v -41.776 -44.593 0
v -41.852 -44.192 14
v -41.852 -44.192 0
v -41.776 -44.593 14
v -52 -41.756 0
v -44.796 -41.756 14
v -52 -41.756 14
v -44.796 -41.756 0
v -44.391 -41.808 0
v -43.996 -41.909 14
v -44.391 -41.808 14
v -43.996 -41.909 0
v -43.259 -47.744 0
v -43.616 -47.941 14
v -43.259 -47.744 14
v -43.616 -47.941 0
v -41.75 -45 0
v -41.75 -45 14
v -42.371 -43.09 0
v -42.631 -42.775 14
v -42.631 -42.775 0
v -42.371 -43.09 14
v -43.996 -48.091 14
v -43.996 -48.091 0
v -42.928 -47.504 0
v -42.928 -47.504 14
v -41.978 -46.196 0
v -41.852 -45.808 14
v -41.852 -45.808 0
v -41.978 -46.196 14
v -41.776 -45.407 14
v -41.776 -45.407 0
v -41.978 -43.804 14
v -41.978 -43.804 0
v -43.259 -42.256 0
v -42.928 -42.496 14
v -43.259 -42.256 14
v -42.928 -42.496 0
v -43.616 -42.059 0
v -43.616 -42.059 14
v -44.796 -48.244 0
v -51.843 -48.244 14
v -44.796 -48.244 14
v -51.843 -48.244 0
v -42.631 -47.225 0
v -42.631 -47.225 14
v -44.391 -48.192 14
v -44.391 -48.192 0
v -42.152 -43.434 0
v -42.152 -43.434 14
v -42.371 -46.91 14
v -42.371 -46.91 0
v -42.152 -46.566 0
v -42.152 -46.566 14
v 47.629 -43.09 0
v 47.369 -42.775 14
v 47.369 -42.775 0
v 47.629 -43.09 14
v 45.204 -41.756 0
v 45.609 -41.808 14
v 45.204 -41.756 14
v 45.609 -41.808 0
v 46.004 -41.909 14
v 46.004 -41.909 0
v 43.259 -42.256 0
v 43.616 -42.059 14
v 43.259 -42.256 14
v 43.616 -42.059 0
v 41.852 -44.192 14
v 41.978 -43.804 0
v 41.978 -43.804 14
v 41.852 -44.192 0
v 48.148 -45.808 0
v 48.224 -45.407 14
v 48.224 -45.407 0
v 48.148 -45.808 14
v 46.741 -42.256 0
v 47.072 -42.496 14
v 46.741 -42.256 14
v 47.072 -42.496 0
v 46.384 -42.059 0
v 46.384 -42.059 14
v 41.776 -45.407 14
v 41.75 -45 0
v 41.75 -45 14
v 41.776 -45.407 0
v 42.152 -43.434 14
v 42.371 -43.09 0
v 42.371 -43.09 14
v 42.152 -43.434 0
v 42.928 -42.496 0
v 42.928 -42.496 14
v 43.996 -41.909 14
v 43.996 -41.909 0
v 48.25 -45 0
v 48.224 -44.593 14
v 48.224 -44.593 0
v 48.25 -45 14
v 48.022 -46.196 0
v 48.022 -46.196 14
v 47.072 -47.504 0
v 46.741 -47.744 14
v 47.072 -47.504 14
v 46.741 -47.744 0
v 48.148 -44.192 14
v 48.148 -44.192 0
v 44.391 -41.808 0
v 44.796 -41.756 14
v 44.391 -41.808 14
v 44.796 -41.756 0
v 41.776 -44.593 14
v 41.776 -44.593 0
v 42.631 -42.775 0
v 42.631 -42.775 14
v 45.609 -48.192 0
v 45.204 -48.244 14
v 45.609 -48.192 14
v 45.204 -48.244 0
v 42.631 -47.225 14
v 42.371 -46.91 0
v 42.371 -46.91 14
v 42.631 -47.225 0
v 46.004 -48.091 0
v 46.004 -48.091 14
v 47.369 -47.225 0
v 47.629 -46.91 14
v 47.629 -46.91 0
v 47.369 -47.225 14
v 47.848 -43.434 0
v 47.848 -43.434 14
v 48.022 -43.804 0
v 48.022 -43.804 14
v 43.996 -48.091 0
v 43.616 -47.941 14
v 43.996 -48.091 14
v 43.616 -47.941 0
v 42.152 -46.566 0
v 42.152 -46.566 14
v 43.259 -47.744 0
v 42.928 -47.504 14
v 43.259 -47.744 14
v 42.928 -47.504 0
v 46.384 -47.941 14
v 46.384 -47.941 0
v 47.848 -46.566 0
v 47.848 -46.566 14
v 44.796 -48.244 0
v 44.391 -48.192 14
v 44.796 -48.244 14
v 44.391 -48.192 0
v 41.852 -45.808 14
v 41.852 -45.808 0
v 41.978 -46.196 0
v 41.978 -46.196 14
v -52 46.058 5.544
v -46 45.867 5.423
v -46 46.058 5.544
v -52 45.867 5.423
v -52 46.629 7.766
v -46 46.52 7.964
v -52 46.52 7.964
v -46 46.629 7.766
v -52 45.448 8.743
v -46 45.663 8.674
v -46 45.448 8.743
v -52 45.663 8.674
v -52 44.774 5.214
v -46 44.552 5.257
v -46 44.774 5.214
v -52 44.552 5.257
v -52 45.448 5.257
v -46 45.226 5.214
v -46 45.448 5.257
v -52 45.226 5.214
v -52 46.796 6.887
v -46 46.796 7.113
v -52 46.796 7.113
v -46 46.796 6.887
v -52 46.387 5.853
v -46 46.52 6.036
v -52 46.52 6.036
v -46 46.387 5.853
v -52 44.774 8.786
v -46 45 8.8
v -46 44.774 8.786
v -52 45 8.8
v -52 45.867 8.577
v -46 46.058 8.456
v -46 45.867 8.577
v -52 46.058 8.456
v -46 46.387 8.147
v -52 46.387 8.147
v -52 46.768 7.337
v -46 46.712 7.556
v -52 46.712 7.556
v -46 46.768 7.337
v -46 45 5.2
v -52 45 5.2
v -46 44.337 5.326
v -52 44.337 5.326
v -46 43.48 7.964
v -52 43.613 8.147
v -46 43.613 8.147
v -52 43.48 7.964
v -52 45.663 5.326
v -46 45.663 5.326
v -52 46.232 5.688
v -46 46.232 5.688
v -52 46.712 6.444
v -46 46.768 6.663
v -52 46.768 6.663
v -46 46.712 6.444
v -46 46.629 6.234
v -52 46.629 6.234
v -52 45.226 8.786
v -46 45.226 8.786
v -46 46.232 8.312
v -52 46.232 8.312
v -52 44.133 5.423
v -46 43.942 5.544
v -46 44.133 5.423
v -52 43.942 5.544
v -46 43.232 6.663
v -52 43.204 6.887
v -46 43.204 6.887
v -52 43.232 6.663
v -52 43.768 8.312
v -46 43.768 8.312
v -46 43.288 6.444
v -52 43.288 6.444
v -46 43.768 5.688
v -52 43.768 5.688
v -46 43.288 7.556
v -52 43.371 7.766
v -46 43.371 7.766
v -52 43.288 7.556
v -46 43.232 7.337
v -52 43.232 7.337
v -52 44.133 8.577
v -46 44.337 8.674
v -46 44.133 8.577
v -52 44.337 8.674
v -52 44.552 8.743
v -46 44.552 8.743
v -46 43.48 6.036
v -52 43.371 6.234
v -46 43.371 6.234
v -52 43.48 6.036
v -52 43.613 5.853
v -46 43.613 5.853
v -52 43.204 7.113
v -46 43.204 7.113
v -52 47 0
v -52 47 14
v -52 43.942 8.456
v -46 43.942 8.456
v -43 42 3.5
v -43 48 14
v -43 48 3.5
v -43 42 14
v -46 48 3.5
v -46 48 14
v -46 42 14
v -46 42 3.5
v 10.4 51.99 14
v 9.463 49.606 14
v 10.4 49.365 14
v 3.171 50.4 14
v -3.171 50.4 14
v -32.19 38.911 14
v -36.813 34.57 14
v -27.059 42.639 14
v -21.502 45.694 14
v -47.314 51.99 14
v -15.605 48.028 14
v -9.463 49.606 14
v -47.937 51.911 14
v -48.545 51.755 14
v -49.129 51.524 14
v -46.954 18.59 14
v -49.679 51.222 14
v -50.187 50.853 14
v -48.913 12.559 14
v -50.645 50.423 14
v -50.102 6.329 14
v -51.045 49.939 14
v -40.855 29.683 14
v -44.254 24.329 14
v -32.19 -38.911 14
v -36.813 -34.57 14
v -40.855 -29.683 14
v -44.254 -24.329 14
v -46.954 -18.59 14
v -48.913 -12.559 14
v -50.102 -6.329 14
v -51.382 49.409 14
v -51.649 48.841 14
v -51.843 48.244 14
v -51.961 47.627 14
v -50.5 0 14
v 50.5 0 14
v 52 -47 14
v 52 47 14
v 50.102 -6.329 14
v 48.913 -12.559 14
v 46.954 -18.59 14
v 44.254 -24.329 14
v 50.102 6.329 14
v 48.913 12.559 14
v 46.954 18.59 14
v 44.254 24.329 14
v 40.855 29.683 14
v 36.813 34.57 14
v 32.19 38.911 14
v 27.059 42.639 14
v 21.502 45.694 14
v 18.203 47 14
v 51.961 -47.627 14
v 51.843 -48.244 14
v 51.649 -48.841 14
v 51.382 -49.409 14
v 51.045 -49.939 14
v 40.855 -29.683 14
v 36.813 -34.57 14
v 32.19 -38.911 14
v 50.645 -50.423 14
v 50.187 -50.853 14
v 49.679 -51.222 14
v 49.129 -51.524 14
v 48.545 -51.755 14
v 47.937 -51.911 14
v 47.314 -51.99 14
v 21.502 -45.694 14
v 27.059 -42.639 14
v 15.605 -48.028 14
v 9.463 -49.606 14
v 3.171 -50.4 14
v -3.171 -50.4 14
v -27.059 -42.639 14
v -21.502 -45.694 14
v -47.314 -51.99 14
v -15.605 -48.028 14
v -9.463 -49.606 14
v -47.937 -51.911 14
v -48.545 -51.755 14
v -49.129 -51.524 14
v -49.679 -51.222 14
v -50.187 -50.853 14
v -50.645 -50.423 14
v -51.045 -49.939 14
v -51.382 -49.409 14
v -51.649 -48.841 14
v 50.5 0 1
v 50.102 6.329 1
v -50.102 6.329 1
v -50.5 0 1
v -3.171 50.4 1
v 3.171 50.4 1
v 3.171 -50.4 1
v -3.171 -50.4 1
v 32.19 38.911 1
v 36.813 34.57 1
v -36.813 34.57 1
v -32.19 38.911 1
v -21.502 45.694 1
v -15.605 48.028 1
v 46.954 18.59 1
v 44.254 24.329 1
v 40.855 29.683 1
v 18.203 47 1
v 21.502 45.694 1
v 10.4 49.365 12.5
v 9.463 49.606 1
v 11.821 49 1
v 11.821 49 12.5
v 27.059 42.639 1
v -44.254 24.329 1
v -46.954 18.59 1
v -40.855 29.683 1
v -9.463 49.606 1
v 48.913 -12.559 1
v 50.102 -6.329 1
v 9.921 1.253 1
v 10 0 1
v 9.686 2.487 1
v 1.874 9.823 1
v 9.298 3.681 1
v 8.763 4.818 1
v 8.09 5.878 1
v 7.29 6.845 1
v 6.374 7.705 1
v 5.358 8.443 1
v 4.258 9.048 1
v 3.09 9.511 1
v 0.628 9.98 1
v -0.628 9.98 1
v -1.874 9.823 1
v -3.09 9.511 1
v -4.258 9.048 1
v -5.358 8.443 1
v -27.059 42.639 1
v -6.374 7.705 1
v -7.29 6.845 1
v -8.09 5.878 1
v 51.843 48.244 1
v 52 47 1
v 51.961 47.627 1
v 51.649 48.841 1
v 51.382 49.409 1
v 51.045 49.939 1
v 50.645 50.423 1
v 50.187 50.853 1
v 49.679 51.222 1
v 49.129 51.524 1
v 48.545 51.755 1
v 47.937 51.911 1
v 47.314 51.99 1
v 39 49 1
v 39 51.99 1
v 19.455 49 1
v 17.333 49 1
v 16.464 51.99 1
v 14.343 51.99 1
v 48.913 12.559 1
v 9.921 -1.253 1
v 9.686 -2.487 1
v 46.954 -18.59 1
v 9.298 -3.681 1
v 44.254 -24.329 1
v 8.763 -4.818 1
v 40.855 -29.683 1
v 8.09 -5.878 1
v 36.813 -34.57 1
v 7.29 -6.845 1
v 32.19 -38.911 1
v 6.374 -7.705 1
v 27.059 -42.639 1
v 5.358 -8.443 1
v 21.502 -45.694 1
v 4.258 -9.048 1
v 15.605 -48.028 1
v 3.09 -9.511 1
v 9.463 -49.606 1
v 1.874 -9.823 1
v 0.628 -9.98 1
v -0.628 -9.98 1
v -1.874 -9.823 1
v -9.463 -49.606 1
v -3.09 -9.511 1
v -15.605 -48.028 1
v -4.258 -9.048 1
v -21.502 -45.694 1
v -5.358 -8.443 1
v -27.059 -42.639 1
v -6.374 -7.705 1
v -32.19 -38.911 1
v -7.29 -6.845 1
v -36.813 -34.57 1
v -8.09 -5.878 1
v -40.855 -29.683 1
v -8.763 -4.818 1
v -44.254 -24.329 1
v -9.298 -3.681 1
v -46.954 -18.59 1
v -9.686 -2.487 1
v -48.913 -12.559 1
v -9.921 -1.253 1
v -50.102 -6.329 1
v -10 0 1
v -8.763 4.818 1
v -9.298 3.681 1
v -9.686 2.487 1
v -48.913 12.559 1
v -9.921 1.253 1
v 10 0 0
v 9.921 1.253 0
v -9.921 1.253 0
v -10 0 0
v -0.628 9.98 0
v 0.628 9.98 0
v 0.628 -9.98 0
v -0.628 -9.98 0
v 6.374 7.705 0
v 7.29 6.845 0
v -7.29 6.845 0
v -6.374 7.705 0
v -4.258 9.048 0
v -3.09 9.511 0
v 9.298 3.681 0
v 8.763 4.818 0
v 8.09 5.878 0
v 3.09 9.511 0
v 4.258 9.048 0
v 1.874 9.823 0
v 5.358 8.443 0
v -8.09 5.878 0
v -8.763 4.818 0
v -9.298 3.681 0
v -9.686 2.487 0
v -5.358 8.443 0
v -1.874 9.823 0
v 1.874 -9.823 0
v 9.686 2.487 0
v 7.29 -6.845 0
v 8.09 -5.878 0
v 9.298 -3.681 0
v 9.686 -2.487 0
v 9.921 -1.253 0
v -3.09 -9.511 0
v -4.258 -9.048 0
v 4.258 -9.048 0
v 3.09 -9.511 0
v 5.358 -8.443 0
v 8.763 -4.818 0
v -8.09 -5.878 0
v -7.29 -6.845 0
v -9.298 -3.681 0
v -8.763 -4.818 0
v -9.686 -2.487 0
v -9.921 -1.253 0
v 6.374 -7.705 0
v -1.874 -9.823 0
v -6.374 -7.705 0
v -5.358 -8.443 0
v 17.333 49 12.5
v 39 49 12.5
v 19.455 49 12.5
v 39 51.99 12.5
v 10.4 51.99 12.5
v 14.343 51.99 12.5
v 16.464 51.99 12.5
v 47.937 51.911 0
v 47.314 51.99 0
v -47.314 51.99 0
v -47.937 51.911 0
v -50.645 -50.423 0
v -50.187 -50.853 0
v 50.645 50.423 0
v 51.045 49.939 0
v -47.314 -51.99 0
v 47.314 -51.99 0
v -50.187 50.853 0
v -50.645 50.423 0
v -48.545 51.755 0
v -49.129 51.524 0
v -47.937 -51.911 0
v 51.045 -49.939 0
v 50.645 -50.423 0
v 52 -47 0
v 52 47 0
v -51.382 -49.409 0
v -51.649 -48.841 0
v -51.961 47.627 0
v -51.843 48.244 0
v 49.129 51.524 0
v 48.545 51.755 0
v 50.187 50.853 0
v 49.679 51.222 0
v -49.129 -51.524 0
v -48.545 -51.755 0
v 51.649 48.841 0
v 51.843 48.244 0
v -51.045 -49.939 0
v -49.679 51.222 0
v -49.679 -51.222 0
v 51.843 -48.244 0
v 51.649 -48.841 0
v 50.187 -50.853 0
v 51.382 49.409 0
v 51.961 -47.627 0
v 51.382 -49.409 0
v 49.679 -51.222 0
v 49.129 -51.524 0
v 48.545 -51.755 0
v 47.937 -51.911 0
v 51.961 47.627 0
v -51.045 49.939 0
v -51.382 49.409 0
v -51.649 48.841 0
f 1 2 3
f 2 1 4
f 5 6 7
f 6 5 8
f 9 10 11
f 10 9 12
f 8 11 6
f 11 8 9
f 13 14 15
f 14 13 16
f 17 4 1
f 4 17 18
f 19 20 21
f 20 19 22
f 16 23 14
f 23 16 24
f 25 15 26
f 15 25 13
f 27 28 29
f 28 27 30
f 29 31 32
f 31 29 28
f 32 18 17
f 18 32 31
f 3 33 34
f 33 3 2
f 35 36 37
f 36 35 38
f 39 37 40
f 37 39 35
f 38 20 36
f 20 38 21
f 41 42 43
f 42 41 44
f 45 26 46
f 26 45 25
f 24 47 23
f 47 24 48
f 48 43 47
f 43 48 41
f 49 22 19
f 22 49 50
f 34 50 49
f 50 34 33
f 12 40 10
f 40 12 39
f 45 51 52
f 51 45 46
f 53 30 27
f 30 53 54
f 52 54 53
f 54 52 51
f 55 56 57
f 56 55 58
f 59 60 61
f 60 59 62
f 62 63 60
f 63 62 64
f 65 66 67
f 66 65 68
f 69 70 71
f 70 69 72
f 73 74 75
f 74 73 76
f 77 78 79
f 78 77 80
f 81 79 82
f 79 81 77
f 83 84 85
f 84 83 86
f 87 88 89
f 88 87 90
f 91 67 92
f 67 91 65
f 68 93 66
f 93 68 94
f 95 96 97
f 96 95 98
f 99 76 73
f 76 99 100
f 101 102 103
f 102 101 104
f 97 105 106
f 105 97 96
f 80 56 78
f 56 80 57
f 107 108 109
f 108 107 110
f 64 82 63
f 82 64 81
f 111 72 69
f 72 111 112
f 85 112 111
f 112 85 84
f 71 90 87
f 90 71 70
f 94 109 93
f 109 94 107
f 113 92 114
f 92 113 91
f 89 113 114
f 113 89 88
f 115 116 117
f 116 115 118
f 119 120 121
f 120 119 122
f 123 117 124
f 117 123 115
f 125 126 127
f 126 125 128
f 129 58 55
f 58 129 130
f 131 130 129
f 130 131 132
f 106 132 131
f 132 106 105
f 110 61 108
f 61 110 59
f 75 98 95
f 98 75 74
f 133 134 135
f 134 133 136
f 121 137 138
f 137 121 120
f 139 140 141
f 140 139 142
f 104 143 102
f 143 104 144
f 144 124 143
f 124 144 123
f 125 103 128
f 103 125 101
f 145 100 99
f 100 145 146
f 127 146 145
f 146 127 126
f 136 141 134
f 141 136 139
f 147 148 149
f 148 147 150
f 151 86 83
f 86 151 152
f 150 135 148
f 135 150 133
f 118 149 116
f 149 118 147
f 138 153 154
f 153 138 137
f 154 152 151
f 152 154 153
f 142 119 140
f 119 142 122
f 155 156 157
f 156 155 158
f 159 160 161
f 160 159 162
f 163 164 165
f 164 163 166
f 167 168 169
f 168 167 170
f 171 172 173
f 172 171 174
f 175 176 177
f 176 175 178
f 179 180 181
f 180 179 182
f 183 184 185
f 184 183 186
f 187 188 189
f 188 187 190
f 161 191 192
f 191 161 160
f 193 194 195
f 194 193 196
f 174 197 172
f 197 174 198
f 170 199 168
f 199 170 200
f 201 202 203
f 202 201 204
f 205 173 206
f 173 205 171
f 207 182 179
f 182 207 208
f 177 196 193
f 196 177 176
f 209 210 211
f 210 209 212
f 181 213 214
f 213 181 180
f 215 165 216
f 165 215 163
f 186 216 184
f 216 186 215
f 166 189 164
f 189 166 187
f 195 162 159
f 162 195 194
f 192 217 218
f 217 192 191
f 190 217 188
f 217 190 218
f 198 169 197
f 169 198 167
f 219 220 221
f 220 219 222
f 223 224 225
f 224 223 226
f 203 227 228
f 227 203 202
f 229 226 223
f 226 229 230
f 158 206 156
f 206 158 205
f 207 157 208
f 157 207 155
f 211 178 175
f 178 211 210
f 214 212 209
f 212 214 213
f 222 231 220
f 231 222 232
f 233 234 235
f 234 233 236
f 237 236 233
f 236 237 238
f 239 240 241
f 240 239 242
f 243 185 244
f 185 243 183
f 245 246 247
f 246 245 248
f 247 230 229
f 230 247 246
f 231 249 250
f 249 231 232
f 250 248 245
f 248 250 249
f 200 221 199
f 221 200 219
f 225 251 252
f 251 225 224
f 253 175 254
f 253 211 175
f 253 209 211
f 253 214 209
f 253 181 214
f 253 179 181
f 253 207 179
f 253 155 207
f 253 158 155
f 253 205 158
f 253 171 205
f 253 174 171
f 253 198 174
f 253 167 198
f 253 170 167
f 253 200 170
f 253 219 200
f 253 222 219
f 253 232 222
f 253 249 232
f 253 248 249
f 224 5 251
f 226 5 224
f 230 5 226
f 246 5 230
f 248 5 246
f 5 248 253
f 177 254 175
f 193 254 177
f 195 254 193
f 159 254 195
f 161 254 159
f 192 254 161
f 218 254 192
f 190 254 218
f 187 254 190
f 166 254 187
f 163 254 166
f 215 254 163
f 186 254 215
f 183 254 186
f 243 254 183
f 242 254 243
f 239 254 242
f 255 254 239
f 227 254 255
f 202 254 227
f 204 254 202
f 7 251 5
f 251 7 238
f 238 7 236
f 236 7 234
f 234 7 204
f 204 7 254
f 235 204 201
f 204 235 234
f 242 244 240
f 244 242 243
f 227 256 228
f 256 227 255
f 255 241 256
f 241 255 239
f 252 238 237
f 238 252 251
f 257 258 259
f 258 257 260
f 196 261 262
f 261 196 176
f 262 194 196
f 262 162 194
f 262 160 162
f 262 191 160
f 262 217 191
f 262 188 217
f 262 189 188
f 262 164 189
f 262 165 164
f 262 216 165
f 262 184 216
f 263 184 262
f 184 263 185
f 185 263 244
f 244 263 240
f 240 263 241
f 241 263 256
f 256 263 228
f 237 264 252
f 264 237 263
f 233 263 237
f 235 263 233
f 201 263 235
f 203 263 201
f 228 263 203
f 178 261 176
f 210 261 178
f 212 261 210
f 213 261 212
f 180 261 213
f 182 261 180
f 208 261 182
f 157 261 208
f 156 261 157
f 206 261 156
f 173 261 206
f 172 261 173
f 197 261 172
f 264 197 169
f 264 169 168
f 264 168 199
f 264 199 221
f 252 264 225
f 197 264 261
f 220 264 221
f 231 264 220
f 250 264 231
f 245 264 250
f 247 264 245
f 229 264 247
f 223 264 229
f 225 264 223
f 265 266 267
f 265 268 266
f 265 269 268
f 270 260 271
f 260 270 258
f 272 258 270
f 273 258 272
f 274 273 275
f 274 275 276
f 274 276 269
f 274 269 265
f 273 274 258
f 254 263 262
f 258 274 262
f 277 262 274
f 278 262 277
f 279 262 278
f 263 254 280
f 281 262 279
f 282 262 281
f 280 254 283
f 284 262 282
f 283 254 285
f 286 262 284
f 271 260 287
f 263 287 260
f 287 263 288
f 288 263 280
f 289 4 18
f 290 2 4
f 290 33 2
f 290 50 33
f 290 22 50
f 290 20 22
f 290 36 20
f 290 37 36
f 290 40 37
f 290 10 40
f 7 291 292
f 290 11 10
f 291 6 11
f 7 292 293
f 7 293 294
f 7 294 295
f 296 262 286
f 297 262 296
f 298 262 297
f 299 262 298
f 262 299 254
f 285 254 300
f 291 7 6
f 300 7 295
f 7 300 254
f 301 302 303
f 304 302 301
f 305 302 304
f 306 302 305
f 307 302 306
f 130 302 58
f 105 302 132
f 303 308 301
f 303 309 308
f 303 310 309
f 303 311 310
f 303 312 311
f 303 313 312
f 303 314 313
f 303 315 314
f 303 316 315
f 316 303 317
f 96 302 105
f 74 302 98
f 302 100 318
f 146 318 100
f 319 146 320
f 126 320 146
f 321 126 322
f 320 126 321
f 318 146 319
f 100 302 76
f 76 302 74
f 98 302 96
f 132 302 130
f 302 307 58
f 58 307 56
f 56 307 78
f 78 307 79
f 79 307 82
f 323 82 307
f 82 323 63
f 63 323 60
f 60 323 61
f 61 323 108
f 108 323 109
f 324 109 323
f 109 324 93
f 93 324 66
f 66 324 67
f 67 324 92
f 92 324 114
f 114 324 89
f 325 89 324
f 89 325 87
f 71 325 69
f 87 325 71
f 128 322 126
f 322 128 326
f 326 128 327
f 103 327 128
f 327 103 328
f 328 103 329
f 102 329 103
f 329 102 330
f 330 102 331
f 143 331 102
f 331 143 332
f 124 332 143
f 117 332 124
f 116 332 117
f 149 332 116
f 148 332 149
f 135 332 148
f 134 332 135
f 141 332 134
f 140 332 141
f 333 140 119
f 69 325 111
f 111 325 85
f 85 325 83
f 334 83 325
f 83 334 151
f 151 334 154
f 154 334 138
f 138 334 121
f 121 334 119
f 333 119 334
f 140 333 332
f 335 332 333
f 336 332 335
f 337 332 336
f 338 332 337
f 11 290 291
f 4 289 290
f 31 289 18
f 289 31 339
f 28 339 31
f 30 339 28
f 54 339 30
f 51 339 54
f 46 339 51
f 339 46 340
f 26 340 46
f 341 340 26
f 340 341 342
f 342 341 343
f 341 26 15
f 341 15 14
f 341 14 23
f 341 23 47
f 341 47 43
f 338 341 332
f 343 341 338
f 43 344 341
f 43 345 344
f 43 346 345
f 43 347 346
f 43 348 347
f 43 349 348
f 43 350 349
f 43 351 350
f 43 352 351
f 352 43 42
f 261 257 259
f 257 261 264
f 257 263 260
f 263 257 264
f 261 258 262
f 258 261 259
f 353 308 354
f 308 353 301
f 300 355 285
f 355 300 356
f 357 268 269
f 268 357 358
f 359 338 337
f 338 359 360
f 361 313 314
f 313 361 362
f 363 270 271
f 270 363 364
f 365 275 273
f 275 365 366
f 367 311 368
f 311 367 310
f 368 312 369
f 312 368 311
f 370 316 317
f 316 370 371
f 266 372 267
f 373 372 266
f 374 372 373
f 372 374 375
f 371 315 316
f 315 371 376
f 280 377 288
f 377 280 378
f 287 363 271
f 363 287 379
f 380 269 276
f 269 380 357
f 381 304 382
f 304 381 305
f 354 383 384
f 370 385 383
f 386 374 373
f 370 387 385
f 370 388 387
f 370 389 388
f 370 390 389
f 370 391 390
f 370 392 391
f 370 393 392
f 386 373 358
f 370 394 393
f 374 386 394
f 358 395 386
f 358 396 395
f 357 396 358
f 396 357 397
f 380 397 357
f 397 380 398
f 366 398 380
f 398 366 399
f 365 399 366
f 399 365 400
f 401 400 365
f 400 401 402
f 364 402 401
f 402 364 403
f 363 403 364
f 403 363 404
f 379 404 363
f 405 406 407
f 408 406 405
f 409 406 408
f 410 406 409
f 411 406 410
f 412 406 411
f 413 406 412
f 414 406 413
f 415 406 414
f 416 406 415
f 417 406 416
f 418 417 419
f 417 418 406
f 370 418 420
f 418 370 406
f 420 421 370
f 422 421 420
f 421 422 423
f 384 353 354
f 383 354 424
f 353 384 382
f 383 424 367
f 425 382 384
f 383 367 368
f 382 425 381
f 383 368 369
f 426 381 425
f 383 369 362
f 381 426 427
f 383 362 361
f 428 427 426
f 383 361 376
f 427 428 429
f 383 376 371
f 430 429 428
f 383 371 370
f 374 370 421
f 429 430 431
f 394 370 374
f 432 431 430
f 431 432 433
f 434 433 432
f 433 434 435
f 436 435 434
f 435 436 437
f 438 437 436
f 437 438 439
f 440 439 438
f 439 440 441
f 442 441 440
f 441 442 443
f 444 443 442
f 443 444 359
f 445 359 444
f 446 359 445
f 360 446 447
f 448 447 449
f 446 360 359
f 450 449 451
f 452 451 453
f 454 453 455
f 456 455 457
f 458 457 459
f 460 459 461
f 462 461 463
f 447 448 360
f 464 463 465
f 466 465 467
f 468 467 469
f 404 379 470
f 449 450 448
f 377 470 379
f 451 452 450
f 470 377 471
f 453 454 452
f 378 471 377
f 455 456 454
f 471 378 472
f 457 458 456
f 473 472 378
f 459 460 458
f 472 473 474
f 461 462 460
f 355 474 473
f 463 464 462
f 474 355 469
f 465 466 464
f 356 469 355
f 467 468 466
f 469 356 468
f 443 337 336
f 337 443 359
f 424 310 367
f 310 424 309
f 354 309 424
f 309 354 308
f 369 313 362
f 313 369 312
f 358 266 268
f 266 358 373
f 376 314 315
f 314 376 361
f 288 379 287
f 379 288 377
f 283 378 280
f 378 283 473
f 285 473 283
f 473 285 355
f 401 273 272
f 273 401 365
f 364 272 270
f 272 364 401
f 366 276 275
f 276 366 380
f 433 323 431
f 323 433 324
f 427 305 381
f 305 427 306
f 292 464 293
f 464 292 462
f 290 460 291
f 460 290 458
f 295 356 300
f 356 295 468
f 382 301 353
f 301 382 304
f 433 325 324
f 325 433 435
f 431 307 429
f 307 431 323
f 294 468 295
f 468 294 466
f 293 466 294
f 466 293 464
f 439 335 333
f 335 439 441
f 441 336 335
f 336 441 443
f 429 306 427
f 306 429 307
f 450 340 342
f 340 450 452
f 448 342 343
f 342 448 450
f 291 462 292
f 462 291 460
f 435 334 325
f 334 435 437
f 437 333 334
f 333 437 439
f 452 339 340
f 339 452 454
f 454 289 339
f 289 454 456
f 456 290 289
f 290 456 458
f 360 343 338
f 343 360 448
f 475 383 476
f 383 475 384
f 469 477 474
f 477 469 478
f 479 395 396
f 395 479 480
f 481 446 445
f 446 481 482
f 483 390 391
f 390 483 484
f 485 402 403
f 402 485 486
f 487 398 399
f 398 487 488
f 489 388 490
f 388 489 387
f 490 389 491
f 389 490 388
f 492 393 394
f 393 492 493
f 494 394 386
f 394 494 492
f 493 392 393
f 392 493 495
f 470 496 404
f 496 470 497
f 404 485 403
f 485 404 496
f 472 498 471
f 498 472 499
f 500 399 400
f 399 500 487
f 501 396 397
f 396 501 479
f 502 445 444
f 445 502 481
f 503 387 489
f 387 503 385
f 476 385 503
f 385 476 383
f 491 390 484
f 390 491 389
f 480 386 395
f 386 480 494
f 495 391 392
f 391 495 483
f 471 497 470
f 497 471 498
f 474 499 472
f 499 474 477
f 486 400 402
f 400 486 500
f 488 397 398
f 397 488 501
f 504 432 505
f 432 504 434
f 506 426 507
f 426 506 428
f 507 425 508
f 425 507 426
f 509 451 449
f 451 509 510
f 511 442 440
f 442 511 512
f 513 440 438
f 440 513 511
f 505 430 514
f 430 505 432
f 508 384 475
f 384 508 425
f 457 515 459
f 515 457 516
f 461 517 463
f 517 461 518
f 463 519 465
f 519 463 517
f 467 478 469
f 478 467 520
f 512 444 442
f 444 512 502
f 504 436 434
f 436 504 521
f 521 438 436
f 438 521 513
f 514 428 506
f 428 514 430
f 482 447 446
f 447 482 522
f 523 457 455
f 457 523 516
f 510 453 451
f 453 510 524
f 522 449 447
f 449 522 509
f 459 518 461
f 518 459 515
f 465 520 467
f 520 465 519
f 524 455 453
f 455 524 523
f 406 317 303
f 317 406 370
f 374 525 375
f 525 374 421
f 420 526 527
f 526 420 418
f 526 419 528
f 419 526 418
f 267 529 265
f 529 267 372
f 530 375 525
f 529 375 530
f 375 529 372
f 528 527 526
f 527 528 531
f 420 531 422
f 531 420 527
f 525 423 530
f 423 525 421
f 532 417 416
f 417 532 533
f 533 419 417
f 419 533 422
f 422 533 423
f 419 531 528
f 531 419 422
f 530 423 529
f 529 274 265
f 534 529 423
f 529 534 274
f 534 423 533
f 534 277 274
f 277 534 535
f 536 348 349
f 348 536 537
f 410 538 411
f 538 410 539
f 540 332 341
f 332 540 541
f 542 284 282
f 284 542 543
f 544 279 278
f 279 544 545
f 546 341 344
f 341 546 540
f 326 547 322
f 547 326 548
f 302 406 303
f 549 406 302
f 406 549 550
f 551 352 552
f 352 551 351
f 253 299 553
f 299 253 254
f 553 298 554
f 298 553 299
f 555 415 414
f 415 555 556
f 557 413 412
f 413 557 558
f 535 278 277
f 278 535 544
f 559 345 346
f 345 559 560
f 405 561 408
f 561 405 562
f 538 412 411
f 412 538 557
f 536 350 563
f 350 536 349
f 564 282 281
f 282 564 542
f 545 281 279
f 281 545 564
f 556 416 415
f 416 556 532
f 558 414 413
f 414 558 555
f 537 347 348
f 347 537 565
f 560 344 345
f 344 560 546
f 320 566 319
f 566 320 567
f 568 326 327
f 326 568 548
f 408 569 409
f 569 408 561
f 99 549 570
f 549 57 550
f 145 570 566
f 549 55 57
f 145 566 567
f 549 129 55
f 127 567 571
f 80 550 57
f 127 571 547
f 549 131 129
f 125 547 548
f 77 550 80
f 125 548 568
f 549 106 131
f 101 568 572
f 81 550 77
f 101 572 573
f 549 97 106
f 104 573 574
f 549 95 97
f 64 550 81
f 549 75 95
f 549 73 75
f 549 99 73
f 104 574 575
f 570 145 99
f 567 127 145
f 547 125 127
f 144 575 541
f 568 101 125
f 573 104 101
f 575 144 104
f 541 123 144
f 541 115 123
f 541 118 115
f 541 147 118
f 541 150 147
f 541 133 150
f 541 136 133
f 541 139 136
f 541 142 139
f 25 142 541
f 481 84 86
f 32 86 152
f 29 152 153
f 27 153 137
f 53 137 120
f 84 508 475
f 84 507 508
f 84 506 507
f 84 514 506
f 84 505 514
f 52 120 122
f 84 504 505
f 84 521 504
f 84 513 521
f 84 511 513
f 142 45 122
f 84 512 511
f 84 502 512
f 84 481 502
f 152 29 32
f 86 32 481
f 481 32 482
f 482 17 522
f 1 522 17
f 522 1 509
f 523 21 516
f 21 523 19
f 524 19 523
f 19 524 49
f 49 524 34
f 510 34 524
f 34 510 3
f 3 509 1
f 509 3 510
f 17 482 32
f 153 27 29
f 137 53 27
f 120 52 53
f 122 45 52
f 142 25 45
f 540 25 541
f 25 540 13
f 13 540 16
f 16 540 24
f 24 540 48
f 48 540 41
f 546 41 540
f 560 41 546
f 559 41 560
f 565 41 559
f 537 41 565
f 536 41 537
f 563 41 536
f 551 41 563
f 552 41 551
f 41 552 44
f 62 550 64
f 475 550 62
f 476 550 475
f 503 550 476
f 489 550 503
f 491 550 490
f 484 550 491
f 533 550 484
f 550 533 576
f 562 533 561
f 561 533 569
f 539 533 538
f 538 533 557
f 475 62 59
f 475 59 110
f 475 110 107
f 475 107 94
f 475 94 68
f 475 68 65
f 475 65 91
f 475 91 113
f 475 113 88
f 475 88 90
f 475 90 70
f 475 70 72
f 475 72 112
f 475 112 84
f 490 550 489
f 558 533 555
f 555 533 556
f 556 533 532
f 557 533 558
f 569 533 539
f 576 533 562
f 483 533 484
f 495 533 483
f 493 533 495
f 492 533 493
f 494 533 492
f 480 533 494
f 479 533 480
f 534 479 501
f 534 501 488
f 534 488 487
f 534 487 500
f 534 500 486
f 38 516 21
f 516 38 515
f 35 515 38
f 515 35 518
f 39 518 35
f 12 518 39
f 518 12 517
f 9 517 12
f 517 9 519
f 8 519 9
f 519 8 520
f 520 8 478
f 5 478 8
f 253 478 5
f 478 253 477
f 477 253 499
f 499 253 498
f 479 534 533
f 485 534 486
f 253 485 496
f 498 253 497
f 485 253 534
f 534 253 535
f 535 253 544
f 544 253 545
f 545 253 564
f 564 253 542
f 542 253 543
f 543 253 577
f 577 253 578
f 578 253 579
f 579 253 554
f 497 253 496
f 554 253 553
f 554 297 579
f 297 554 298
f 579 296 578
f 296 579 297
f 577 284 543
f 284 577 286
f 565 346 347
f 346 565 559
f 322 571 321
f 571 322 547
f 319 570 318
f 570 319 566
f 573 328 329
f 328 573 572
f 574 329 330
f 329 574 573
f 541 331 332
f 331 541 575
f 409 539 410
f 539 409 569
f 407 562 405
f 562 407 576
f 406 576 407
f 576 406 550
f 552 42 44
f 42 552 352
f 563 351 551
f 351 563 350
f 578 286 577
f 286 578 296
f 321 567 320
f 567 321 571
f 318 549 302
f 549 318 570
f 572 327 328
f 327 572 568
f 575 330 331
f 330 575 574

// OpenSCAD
$fn = 50;


difference() {
	union() {
		translate(v = [0, 0, 0]) {
			rotate(a = [0, 0, 0]) {
				hull() {
					translate(v = [-47.0000000000, 47.0000000000, 0]) {
						rotate(a = [0, 0, 0]) {
							translate(v = [0, 0, 0]) {
								rotate(a = [0, 0, 0]) {
									cylinder(h = 14, r = 5);
								}
							}
						}
					}
					translate(v = [47.0000000000, 47.0000000000, 0]) {
						rotate(a = [0, 0, 0]) {
							translate(v = [0, 0, 0]) {
								rotate(a = [0, 0, 0]) {
									cylinder(h = 14, r = 5);
								}
							}
						}
					}
					translate(v = [-47.0000000000, -47.0000000000, 0]) {
						rotate(a = [0, 0, 0]) {
							translate(v = [0, 0, 0]) {
								rotate(a = [0, 0, 0]) {
									cylinder(h = 14, r = 5);
								}
							}
						}
					}
					translate(v = [47.0000000000, -47.0000000000, 0]) {
						rotate(a = [0, 0, 0]) {
							translate(v = [0, 0, 0]) {
								rotate(a = [0, 0, 0]) {
									cylinder(h = 14, r = 5);
								}
							}
						}
					}
				}
			}
		}
	}
	union() {
		translate(v = [-52.5000000000, -45.0000000000, -125]) {
			rotate(a = [0, 0, 0]) {
				hull() {
					translate(v = [7.5000000000, 0, 0]) {
						rotate(a = [0, 0, 0]) {
							translate(v = [0, 0, 0]) {
								rotate(a = [0, 0, 0]) {
									cylinder(h = 250, r = 3.2500000000);
								}
							}
						}
					}
					translate(v = [-7.5000000000, 0, 0]) {
						rotate(a = [0, 0, 0]) {
							translate(v = [0, 0, 0]) {
								rotate(a = [0, 0, 0]) {
									cylinder(h = 250, r = 3.2500000000);
								}
							}
						}
					}
				}
			}
		}
		translate(v = [45.0000000000, -45.0000000000, -125.0000000000]) {
			rotate(a = [0, 0, 0]) {
				cylinder(h = 250, r = 3.2500000000);
			}
		}
		translate(v = [-52.0000000000, 45.0000000000, 7.0000000000]) {
			rotate(a = [0, 90, 0]) {
				cylinder(h = 9, r = 1.8000000000);
			}
		}
		translate(v = [-46.0000000000, 42.0000000000, 3.5000000000]) {
			rotate(a = [0, 0, 0]) {
				cube(size = [3, 6, 10.5000000000]);
			}
		}
		translate(v = [0, 0, 1.0000000000]) {
			rotate(a = [0, 0, 0]) {
				cylinder(h = 16, r = 50.5000000000);
			}
		}
		translate(v = [0, 0, -7.0000000000]) {
			rotate(a = [0, 0, 0]) {
				cylinder(h = 14, r = 10.0000000000);
			}
		}
		translate(v = [0.0000000000, 47.0000000000, 1]) {
			rotate(a = [0, 0, 0]) {
				cube(size = [52.0000000000, 2, 16]);
			}
		}
		translate(v = [39.0000000000, 47.0000000000, 1]) {
			rotate(a = [0, 0, 0]) {
				cube(size = [13.0000000000, 5, 16]);
			}
		}
		translate(v = [10.4000000000, 47.0000000000, 12.5000000000]) {
			rotate(a = [0, 0, 0]) {
				cube(size = [41.6000000000, 5, 1.5000000000]);
			}
		}
		translate(v = [13.5833333333, 52.7500000000, 1]) {
			rotate(a = [0, 0, -45]) {
				cube(size = [7.5000000000, 1.5000000000, 16]);
			}
		}
	}
}
